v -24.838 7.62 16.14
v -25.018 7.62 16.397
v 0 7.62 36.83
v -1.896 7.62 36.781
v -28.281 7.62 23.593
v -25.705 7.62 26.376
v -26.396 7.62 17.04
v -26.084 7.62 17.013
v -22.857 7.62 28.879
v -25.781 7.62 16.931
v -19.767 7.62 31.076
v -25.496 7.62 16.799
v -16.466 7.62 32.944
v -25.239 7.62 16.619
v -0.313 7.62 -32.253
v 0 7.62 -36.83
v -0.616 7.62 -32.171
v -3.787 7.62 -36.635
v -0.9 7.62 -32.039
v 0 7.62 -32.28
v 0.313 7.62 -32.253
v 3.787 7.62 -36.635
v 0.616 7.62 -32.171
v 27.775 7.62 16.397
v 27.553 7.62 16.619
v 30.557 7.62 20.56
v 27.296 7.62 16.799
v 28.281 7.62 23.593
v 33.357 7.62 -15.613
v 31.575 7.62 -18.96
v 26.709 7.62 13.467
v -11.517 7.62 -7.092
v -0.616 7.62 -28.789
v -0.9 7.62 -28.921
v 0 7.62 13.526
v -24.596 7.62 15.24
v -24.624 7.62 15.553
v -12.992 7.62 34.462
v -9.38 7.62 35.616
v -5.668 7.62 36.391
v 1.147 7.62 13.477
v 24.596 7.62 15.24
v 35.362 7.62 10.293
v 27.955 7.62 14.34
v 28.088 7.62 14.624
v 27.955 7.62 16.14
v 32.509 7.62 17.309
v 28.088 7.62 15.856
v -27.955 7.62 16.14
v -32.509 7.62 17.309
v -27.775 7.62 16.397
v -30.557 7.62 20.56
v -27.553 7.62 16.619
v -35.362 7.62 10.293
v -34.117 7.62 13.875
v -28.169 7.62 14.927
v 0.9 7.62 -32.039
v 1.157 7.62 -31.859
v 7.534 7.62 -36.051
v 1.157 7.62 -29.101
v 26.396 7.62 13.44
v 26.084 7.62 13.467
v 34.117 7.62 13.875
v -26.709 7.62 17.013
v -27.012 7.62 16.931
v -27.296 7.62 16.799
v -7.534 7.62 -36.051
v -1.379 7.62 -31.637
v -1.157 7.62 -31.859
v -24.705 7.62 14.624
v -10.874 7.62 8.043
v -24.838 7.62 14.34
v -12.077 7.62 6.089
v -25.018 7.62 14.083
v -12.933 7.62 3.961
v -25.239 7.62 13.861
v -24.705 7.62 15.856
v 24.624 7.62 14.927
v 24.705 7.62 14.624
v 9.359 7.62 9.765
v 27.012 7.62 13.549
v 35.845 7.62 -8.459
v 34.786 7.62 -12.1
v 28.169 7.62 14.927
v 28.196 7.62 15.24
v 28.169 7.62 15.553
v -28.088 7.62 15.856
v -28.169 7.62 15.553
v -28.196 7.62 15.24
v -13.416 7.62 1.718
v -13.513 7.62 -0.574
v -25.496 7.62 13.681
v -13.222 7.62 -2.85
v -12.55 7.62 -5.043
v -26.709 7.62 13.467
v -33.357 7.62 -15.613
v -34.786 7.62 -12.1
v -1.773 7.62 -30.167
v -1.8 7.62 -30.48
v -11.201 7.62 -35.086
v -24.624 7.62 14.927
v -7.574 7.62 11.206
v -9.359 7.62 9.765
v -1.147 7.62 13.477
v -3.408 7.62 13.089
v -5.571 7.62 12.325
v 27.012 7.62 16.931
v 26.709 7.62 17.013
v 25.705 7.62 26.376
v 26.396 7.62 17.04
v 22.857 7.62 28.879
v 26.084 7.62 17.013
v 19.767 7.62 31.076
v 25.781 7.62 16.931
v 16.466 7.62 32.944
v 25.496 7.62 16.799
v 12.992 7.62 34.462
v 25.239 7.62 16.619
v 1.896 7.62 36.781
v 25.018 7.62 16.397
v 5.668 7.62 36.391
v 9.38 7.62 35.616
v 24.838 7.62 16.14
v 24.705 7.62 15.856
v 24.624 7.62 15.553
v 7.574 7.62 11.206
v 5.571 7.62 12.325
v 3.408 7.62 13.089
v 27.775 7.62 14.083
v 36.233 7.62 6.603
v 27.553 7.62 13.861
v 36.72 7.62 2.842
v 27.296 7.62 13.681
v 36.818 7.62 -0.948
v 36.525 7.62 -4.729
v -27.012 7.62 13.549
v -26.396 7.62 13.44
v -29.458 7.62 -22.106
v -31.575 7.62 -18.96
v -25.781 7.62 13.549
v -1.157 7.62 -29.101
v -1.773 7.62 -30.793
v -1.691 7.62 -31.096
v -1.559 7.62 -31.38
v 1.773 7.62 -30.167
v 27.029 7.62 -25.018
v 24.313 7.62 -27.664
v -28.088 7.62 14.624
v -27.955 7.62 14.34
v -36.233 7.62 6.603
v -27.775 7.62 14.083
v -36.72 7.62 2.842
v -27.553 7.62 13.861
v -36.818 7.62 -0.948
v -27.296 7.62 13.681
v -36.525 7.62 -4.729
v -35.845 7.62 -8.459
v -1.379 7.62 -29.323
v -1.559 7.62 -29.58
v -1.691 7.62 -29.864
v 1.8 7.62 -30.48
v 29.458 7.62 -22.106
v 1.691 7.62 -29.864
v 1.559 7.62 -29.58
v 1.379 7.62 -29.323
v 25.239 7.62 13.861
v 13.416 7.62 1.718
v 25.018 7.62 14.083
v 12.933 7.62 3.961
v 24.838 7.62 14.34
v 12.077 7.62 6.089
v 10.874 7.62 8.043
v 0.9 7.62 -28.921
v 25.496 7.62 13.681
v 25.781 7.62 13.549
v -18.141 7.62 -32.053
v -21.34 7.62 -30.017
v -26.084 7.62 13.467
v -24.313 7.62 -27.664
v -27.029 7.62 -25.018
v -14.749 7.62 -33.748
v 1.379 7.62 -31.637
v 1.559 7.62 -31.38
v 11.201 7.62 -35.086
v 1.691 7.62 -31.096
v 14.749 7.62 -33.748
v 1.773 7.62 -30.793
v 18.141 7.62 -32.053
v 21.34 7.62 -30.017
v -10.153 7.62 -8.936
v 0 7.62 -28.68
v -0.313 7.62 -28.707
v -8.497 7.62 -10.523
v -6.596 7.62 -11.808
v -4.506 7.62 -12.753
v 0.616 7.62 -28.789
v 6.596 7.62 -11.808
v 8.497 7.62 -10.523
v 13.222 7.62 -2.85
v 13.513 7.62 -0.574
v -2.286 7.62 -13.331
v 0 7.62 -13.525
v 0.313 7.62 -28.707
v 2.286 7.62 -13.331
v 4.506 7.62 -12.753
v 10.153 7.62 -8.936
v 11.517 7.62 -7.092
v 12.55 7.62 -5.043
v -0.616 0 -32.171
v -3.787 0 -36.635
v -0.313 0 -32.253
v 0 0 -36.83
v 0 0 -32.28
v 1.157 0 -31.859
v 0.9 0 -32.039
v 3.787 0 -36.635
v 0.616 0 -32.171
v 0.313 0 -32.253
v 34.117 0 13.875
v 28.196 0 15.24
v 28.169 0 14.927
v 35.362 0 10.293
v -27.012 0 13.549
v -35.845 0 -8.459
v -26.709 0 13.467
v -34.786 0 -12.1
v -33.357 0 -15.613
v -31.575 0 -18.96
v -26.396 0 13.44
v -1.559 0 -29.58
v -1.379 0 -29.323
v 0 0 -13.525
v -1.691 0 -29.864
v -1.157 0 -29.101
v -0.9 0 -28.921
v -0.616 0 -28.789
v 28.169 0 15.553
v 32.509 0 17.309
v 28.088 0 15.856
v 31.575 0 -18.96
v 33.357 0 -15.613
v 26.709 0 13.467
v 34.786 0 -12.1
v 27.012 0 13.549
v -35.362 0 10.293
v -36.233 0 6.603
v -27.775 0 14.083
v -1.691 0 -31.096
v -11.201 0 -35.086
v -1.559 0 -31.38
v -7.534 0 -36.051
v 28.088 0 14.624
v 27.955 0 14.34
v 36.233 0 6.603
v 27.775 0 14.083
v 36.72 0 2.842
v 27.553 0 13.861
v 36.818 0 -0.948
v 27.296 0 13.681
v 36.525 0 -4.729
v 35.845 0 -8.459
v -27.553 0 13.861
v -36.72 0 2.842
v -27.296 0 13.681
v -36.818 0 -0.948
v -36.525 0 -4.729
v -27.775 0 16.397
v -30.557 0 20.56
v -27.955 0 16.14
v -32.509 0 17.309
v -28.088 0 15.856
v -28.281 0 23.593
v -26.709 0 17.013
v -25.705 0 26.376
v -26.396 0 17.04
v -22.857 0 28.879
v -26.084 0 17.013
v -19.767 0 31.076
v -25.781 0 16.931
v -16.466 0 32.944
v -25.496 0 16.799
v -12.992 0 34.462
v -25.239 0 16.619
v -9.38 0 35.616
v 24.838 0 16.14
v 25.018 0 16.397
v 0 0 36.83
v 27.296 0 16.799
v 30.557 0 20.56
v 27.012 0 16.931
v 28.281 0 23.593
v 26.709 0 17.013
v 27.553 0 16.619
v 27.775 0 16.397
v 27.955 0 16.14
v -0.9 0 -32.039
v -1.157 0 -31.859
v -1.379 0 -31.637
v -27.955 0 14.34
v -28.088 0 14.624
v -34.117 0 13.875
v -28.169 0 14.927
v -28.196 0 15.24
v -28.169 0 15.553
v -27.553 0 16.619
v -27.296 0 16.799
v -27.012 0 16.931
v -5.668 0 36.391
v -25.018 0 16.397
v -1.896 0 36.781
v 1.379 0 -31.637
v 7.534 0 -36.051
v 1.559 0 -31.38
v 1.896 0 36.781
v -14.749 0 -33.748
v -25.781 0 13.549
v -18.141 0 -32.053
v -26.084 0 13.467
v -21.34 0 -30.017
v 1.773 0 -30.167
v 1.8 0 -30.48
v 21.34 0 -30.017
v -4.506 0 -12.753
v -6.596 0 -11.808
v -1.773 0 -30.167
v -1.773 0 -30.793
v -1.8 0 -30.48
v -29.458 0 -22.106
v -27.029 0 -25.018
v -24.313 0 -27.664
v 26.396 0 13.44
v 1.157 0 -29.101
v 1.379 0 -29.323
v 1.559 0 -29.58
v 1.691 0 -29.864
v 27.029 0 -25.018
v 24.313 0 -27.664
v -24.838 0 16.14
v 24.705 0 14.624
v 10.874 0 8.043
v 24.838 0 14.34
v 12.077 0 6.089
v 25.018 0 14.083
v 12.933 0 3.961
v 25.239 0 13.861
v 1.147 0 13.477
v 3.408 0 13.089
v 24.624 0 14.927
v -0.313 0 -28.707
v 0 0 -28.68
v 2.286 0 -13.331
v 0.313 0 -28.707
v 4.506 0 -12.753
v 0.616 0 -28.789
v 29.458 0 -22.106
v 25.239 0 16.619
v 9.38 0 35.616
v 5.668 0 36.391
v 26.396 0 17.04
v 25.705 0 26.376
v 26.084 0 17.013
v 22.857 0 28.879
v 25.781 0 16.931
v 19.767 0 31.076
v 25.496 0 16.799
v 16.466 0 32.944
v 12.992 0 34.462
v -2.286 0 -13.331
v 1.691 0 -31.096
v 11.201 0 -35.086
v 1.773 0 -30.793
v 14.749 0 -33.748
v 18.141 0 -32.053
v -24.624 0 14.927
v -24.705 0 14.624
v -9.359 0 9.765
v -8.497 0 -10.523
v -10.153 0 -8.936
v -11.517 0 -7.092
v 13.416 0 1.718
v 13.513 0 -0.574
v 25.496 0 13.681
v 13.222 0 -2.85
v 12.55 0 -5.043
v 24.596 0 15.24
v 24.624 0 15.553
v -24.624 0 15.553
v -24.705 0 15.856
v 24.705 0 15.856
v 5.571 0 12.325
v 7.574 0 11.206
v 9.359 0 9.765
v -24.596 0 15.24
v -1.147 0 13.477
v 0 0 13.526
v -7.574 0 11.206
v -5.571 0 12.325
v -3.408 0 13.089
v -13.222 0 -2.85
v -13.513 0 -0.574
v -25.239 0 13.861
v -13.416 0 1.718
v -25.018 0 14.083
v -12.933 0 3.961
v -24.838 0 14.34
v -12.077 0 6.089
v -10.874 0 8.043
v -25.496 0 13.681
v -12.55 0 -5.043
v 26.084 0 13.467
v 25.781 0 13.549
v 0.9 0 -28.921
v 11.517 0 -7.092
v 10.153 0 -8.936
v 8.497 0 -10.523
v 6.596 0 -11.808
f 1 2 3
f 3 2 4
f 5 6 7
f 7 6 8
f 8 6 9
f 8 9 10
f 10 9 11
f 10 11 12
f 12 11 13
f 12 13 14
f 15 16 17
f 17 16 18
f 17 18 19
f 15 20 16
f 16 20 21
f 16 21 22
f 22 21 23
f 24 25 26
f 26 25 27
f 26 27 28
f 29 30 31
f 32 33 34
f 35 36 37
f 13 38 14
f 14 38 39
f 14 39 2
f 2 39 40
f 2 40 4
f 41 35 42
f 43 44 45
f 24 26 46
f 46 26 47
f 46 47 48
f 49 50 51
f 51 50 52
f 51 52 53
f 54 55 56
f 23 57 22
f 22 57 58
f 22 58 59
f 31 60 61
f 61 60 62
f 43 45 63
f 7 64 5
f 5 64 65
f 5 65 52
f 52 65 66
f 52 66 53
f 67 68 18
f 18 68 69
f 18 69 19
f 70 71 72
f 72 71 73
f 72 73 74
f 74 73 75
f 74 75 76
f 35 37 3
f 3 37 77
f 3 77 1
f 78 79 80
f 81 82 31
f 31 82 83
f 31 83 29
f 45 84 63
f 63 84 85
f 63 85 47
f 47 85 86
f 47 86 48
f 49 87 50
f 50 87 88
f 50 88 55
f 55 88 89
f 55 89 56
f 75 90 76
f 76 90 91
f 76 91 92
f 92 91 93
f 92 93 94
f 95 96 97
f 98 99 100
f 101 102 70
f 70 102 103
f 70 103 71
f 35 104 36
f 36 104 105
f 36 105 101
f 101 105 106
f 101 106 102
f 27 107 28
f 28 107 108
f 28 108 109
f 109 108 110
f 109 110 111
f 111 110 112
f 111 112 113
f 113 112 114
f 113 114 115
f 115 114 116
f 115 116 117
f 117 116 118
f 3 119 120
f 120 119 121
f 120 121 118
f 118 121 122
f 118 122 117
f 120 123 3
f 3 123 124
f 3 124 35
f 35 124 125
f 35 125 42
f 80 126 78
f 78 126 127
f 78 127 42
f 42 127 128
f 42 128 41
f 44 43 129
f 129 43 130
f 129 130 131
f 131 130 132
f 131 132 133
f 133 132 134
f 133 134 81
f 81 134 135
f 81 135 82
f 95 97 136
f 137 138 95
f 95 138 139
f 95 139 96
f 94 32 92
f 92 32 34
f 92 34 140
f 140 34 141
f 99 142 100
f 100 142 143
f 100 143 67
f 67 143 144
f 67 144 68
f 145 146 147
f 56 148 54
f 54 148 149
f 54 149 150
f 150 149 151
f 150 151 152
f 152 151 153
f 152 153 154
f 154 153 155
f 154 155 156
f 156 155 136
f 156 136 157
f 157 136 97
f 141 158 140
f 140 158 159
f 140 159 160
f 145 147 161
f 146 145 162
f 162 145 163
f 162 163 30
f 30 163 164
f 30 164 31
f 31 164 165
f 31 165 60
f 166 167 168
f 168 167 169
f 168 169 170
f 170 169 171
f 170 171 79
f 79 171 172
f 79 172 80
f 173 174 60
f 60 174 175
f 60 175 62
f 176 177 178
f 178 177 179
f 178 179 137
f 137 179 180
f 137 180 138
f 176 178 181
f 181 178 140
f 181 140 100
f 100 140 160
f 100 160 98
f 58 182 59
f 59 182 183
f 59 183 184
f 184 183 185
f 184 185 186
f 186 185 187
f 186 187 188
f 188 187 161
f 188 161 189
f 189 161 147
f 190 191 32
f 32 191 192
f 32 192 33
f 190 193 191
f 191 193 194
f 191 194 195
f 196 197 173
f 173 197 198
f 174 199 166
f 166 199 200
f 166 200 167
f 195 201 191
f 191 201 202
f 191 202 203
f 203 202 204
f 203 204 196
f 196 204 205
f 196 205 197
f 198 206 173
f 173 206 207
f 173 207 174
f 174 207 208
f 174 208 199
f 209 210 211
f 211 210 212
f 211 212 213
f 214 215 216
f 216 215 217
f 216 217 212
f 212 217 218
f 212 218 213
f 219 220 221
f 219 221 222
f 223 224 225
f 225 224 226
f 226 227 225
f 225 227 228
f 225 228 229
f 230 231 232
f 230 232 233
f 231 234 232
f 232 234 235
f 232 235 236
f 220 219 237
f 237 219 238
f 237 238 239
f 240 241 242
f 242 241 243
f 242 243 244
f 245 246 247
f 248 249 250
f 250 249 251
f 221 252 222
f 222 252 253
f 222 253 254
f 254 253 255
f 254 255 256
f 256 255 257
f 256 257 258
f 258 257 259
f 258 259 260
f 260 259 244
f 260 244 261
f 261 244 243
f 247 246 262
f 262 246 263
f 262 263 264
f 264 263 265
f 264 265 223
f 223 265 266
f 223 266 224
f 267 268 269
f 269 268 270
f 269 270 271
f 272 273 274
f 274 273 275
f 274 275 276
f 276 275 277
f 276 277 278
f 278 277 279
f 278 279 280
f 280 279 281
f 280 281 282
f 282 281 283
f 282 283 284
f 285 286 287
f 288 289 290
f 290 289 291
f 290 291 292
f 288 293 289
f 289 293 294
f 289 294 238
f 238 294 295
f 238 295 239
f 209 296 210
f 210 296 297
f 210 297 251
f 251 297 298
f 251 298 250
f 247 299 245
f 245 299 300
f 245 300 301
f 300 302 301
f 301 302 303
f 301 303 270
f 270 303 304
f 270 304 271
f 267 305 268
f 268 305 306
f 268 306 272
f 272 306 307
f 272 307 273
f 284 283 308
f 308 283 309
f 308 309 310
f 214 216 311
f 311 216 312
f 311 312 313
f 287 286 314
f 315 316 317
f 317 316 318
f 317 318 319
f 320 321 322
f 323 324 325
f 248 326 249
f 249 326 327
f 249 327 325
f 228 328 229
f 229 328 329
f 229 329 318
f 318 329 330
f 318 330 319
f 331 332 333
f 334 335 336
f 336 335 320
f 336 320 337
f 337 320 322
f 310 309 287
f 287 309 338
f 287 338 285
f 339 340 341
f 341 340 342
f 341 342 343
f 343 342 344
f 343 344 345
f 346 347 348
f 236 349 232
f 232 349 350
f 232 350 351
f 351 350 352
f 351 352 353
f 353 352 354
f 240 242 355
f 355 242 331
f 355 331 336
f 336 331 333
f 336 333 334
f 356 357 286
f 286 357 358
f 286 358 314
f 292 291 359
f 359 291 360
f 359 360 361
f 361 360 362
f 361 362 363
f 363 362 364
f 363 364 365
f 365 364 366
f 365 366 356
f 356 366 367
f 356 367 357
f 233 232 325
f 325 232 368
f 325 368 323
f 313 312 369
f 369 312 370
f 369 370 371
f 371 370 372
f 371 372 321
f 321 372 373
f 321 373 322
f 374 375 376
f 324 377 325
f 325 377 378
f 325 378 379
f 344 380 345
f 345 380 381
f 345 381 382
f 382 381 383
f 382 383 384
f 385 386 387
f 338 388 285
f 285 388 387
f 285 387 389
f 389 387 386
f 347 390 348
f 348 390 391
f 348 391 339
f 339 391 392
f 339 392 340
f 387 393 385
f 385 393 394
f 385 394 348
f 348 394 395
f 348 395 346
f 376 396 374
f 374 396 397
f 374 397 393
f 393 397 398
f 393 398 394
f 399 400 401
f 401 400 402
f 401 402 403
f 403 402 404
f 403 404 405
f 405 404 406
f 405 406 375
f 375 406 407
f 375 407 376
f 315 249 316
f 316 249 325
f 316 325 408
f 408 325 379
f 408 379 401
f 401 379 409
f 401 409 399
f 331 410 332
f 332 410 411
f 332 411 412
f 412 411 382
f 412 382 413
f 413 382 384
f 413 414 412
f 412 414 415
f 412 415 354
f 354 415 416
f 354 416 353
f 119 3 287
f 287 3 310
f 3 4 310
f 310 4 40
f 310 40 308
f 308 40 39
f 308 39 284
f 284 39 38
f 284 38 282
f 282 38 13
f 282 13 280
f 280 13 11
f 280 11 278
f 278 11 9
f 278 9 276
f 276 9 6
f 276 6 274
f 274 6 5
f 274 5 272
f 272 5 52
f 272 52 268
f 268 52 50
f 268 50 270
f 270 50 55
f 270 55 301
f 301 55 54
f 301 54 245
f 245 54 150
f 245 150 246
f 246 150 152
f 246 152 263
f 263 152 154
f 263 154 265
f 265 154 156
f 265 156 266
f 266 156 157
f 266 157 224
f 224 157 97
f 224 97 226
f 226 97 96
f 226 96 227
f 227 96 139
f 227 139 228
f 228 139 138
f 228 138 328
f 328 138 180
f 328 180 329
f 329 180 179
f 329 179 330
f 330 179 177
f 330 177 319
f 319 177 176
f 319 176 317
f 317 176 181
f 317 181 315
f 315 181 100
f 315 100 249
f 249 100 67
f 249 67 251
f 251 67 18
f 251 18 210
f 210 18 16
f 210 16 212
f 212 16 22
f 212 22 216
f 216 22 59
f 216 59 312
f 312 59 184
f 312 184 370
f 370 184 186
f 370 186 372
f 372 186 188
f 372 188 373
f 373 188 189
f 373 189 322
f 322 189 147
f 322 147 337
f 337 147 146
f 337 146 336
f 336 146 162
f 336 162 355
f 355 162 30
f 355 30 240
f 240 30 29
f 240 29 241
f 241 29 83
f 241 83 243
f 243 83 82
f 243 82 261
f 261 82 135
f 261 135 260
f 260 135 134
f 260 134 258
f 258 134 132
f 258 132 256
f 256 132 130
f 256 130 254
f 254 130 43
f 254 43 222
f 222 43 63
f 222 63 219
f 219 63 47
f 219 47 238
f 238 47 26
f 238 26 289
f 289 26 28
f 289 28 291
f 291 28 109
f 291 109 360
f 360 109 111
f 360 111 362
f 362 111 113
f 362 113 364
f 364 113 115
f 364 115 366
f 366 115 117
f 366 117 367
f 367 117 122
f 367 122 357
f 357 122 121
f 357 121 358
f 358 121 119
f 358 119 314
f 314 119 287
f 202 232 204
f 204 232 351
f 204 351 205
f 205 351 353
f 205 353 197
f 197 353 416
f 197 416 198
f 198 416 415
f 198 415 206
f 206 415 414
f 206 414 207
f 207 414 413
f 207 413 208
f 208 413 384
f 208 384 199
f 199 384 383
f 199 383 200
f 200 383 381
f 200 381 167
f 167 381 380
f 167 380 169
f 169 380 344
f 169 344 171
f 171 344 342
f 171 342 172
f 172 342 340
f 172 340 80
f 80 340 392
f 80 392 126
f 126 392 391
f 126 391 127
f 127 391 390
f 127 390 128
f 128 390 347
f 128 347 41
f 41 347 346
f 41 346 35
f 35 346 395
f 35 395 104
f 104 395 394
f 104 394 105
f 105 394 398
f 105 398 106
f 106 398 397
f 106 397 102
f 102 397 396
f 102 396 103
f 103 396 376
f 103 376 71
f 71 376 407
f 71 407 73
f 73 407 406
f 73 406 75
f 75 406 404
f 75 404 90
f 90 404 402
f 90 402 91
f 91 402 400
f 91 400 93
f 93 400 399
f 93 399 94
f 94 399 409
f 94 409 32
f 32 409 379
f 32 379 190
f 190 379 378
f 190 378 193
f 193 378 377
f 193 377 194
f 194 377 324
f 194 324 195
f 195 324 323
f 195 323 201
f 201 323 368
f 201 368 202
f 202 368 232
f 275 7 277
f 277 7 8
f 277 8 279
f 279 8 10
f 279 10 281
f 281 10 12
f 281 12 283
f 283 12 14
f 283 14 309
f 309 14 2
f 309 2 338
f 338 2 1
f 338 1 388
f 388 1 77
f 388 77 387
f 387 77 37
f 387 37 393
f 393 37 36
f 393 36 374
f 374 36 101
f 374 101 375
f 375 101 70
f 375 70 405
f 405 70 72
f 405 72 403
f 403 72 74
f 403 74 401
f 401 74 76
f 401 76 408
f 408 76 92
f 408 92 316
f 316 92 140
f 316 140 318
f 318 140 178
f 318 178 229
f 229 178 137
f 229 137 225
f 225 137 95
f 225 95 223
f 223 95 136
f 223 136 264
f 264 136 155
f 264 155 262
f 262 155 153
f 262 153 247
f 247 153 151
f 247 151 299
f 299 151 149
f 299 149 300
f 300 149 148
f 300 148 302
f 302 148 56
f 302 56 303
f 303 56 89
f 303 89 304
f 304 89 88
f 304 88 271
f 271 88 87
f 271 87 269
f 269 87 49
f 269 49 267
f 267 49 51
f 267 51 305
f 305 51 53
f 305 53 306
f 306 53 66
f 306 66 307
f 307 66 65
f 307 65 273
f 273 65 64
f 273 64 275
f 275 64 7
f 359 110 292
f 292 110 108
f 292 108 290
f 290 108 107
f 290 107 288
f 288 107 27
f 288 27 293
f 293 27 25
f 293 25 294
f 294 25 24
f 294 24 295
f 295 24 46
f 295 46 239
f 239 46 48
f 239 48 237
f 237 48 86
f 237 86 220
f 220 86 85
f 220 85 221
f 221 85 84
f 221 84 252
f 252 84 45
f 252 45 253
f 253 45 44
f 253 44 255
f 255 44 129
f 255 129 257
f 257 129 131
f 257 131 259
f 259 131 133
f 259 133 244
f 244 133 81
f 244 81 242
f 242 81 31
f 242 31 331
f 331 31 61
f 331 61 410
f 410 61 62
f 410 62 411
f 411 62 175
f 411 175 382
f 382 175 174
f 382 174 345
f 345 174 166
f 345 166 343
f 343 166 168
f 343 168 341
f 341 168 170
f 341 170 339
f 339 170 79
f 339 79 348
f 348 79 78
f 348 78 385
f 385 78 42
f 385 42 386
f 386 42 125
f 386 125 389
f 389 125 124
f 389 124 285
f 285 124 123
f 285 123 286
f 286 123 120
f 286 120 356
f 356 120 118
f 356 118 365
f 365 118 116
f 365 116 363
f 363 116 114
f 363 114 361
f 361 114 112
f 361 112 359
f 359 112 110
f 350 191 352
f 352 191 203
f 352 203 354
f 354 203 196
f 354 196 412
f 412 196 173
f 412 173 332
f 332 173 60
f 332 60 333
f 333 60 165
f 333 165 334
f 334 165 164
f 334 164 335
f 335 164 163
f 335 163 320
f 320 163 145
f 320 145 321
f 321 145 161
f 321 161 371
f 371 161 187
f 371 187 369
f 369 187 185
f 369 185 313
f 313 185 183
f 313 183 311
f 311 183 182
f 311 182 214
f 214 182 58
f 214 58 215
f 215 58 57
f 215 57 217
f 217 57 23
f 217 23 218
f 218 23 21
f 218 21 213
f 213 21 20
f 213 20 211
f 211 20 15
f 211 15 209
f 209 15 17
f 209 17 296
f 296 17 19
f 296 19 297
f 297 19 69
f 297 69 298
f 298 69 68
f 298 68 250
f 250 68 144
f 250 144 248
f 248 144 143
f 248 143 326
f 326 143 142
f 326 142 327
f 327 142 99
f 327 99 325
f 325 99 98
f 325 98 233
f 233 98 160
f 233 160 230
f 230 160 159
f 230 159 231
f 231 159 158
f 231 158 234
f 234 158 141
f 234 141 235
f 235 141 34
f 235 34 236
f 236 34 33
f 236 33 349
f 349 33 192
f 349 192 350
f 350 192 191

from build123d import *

# Parameters (mm, degrees)
SKETCH1_R            = 36.83
SKETCH1_R_2          = 13.5255
BOSS_EXTRUDE1_DEPTH  = 7.62
M3_CLEARANCE_HOLE1_D = 3.6


with BuildPart() as part:
    # Sketch1 → Boss-Extrude1 (new body)
    with BuildSketch(Plane(origin=(0, 0, 0), x_dir=(1, 0, 0), z_dir=(0, 1, 0))):
        with Locations(Location((0, 0, 0), (0, 0, 90))):
            Circle(SKETCH1_R)
        with Locations(Location((0, 0, 0), (0, 0, 90))):
            Circle(SKETCH1_R_2, mode=Mode.SUBTRACT)
    extrude(amount=BOSS_EXTRUDE1_DEPTH)

    # M3 Clearance Hole1 (through all)
    with Locations(Plane(origin=(0, 7.62, 0), x_dir=(1, 0, 0), z_dir=(0, 1, 0))):
        with Locations((0, 30.48), (26.396454307, -15.24), (-26.396454307, -15.24)):
            Hole(M3_CLEARANCE_HOLE1_D / 2)


solid = part.part
